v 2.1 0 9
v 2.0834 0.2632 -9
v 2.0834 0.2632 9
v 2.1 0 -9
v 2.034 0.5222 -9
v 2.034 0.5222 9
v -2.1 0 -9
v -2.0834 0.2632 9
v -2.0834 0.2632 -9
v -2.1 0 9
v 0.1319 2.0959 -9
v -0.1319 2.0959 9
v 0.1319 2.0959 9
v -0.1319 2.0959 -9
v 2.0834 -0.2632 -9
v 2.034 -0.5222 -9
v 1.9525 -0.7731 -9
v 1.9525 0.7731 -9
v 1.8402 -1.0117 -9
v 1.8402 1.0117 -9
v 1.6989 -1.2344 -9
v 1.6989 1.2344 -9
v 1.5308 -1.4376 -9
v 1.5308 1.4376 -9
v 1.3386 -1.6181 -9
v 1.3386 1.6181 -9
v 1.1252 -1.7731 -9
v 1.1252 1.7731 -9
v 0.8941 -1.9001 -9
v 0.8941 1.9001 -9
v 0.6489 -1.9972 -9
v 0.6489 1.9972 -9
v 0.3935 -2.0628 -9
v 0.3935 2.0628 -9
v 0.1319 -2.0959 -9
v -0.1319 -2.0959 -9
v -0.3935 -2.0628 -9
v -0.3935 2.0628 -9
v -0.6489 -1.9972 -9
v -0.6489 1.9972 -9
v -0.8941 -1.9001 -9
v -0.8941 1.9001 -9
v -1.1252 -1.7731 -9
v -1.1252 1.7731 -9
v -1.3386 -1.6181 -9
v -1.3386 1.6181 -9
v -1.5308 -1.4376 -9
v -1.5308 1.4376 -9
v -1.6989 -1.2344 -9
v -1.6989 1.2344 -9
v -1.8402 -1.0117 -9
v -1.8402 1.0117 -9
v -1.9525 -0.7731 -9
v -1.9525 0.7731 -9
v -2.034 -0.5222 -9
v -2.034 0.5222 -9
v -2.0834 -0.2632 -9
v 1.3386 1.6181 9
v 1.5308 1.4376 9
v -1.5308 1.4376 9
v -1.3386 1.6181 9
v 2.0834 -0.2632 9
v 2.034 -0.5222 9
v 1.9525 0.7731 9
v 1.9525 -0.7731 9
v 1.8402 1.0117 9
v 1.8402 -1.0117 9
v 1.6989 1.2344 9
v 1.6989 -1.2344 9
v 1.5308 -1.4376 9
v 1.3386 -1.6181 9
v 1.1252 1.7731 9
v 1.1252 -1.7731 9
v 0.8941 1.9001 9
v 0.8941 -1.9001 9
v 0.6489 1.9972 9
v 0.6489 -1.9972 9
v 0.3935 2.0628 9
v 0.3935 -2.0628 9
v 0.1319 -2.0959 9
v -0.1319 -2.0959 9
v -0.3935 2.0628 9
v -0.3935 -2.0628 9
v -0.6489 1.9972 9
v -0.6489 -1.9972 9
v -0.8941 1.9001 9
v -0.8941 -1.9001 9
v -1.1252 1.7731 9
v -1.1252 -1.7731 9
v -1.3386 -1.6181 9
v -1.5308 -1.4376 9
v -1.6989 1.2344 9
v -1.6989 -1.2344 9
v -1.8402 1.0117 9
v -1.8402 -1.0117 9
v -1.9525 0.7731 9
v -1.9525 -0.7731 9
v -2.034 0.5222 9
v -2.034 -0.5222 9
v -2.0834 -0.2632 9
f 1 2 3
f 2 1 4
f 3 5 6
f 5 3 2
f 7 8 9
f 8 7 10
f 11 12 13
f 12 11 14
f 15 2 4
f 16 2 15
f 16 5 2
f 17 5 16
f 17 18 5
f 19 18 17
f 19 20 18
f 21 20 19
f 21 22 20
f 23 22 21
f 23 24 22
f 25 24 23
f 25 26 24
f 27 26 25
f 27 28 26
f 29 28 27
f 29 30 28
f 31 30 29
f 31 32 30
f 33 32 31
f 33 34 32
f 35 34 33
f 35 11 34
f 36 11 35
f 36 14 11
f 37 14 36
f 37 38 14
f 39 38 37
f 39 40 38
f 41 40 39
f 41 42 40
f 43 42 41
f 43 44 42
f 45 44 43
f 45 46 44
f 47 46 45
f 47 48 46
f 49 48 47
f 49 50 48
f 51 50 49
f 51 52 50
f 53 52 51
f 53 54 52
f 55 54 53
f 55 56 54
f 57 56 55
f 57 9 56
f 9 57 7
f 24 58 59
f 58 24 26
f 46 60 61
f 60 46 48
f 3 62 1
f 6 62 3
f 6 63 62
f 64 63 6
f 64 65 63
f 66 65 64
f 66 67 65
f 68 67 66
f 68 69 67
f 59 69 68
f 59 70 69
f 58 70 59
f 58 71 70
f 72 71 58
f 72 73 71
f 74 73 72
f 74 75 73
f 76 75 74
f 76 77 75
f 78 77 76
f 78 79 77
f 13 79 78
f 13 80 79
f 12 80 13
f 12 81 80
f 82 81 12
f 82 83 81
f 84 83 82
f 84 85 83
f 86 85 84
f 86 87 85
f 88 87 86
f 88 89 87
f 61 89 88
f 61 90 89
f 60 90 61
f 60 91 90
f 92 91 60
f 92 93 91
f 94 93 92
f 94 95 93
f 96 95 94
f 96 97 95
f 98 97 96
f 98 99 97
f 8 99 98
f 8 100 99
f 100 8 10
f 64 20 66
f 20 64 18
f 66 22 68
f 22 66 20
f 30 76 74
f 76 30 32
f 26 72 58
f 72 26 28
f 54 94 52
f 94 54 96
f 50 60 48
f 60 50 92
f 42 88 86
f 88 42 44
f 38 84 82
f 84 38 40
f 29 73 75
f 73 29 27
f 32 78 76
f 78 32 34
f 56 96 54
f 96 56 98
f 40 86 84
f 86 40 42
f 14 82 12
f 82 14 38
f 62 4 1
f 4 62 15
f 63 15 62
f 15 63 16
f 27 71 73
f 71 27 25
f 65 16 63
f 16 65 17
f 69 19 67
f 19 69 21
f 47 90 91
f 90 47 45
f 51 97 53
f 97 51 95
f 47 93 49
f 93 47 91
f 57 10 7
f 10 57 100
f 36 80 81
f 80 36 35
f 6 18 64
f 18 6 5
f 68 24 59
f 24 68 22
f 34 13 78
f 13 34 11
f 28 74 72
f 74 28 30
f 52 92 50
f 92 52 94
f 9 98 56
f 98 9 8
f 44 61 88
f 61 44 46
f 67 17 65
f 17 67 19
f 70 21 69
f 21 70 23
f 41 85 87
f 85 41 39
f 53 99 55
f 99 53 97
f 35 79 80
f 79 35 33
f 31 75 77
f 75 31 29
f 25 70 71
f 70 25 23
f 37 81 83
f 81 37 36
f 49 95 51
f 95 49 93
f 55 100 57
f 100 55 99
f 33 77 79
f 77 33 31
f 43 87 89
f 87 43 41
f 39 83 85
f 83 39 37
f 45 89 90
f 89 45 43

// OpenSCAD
$fn = 50;


difference() {
	union() {
		translate(v = [0, 0, -9.0000000000]) {
			cylinder(h = 18, r = 2.1000000000);
		}
	}
	union() {
		translate(v = [0, 0, -100.0000000000]) {
			cylinder(h = 200, r = 0);
		}
	}
}
